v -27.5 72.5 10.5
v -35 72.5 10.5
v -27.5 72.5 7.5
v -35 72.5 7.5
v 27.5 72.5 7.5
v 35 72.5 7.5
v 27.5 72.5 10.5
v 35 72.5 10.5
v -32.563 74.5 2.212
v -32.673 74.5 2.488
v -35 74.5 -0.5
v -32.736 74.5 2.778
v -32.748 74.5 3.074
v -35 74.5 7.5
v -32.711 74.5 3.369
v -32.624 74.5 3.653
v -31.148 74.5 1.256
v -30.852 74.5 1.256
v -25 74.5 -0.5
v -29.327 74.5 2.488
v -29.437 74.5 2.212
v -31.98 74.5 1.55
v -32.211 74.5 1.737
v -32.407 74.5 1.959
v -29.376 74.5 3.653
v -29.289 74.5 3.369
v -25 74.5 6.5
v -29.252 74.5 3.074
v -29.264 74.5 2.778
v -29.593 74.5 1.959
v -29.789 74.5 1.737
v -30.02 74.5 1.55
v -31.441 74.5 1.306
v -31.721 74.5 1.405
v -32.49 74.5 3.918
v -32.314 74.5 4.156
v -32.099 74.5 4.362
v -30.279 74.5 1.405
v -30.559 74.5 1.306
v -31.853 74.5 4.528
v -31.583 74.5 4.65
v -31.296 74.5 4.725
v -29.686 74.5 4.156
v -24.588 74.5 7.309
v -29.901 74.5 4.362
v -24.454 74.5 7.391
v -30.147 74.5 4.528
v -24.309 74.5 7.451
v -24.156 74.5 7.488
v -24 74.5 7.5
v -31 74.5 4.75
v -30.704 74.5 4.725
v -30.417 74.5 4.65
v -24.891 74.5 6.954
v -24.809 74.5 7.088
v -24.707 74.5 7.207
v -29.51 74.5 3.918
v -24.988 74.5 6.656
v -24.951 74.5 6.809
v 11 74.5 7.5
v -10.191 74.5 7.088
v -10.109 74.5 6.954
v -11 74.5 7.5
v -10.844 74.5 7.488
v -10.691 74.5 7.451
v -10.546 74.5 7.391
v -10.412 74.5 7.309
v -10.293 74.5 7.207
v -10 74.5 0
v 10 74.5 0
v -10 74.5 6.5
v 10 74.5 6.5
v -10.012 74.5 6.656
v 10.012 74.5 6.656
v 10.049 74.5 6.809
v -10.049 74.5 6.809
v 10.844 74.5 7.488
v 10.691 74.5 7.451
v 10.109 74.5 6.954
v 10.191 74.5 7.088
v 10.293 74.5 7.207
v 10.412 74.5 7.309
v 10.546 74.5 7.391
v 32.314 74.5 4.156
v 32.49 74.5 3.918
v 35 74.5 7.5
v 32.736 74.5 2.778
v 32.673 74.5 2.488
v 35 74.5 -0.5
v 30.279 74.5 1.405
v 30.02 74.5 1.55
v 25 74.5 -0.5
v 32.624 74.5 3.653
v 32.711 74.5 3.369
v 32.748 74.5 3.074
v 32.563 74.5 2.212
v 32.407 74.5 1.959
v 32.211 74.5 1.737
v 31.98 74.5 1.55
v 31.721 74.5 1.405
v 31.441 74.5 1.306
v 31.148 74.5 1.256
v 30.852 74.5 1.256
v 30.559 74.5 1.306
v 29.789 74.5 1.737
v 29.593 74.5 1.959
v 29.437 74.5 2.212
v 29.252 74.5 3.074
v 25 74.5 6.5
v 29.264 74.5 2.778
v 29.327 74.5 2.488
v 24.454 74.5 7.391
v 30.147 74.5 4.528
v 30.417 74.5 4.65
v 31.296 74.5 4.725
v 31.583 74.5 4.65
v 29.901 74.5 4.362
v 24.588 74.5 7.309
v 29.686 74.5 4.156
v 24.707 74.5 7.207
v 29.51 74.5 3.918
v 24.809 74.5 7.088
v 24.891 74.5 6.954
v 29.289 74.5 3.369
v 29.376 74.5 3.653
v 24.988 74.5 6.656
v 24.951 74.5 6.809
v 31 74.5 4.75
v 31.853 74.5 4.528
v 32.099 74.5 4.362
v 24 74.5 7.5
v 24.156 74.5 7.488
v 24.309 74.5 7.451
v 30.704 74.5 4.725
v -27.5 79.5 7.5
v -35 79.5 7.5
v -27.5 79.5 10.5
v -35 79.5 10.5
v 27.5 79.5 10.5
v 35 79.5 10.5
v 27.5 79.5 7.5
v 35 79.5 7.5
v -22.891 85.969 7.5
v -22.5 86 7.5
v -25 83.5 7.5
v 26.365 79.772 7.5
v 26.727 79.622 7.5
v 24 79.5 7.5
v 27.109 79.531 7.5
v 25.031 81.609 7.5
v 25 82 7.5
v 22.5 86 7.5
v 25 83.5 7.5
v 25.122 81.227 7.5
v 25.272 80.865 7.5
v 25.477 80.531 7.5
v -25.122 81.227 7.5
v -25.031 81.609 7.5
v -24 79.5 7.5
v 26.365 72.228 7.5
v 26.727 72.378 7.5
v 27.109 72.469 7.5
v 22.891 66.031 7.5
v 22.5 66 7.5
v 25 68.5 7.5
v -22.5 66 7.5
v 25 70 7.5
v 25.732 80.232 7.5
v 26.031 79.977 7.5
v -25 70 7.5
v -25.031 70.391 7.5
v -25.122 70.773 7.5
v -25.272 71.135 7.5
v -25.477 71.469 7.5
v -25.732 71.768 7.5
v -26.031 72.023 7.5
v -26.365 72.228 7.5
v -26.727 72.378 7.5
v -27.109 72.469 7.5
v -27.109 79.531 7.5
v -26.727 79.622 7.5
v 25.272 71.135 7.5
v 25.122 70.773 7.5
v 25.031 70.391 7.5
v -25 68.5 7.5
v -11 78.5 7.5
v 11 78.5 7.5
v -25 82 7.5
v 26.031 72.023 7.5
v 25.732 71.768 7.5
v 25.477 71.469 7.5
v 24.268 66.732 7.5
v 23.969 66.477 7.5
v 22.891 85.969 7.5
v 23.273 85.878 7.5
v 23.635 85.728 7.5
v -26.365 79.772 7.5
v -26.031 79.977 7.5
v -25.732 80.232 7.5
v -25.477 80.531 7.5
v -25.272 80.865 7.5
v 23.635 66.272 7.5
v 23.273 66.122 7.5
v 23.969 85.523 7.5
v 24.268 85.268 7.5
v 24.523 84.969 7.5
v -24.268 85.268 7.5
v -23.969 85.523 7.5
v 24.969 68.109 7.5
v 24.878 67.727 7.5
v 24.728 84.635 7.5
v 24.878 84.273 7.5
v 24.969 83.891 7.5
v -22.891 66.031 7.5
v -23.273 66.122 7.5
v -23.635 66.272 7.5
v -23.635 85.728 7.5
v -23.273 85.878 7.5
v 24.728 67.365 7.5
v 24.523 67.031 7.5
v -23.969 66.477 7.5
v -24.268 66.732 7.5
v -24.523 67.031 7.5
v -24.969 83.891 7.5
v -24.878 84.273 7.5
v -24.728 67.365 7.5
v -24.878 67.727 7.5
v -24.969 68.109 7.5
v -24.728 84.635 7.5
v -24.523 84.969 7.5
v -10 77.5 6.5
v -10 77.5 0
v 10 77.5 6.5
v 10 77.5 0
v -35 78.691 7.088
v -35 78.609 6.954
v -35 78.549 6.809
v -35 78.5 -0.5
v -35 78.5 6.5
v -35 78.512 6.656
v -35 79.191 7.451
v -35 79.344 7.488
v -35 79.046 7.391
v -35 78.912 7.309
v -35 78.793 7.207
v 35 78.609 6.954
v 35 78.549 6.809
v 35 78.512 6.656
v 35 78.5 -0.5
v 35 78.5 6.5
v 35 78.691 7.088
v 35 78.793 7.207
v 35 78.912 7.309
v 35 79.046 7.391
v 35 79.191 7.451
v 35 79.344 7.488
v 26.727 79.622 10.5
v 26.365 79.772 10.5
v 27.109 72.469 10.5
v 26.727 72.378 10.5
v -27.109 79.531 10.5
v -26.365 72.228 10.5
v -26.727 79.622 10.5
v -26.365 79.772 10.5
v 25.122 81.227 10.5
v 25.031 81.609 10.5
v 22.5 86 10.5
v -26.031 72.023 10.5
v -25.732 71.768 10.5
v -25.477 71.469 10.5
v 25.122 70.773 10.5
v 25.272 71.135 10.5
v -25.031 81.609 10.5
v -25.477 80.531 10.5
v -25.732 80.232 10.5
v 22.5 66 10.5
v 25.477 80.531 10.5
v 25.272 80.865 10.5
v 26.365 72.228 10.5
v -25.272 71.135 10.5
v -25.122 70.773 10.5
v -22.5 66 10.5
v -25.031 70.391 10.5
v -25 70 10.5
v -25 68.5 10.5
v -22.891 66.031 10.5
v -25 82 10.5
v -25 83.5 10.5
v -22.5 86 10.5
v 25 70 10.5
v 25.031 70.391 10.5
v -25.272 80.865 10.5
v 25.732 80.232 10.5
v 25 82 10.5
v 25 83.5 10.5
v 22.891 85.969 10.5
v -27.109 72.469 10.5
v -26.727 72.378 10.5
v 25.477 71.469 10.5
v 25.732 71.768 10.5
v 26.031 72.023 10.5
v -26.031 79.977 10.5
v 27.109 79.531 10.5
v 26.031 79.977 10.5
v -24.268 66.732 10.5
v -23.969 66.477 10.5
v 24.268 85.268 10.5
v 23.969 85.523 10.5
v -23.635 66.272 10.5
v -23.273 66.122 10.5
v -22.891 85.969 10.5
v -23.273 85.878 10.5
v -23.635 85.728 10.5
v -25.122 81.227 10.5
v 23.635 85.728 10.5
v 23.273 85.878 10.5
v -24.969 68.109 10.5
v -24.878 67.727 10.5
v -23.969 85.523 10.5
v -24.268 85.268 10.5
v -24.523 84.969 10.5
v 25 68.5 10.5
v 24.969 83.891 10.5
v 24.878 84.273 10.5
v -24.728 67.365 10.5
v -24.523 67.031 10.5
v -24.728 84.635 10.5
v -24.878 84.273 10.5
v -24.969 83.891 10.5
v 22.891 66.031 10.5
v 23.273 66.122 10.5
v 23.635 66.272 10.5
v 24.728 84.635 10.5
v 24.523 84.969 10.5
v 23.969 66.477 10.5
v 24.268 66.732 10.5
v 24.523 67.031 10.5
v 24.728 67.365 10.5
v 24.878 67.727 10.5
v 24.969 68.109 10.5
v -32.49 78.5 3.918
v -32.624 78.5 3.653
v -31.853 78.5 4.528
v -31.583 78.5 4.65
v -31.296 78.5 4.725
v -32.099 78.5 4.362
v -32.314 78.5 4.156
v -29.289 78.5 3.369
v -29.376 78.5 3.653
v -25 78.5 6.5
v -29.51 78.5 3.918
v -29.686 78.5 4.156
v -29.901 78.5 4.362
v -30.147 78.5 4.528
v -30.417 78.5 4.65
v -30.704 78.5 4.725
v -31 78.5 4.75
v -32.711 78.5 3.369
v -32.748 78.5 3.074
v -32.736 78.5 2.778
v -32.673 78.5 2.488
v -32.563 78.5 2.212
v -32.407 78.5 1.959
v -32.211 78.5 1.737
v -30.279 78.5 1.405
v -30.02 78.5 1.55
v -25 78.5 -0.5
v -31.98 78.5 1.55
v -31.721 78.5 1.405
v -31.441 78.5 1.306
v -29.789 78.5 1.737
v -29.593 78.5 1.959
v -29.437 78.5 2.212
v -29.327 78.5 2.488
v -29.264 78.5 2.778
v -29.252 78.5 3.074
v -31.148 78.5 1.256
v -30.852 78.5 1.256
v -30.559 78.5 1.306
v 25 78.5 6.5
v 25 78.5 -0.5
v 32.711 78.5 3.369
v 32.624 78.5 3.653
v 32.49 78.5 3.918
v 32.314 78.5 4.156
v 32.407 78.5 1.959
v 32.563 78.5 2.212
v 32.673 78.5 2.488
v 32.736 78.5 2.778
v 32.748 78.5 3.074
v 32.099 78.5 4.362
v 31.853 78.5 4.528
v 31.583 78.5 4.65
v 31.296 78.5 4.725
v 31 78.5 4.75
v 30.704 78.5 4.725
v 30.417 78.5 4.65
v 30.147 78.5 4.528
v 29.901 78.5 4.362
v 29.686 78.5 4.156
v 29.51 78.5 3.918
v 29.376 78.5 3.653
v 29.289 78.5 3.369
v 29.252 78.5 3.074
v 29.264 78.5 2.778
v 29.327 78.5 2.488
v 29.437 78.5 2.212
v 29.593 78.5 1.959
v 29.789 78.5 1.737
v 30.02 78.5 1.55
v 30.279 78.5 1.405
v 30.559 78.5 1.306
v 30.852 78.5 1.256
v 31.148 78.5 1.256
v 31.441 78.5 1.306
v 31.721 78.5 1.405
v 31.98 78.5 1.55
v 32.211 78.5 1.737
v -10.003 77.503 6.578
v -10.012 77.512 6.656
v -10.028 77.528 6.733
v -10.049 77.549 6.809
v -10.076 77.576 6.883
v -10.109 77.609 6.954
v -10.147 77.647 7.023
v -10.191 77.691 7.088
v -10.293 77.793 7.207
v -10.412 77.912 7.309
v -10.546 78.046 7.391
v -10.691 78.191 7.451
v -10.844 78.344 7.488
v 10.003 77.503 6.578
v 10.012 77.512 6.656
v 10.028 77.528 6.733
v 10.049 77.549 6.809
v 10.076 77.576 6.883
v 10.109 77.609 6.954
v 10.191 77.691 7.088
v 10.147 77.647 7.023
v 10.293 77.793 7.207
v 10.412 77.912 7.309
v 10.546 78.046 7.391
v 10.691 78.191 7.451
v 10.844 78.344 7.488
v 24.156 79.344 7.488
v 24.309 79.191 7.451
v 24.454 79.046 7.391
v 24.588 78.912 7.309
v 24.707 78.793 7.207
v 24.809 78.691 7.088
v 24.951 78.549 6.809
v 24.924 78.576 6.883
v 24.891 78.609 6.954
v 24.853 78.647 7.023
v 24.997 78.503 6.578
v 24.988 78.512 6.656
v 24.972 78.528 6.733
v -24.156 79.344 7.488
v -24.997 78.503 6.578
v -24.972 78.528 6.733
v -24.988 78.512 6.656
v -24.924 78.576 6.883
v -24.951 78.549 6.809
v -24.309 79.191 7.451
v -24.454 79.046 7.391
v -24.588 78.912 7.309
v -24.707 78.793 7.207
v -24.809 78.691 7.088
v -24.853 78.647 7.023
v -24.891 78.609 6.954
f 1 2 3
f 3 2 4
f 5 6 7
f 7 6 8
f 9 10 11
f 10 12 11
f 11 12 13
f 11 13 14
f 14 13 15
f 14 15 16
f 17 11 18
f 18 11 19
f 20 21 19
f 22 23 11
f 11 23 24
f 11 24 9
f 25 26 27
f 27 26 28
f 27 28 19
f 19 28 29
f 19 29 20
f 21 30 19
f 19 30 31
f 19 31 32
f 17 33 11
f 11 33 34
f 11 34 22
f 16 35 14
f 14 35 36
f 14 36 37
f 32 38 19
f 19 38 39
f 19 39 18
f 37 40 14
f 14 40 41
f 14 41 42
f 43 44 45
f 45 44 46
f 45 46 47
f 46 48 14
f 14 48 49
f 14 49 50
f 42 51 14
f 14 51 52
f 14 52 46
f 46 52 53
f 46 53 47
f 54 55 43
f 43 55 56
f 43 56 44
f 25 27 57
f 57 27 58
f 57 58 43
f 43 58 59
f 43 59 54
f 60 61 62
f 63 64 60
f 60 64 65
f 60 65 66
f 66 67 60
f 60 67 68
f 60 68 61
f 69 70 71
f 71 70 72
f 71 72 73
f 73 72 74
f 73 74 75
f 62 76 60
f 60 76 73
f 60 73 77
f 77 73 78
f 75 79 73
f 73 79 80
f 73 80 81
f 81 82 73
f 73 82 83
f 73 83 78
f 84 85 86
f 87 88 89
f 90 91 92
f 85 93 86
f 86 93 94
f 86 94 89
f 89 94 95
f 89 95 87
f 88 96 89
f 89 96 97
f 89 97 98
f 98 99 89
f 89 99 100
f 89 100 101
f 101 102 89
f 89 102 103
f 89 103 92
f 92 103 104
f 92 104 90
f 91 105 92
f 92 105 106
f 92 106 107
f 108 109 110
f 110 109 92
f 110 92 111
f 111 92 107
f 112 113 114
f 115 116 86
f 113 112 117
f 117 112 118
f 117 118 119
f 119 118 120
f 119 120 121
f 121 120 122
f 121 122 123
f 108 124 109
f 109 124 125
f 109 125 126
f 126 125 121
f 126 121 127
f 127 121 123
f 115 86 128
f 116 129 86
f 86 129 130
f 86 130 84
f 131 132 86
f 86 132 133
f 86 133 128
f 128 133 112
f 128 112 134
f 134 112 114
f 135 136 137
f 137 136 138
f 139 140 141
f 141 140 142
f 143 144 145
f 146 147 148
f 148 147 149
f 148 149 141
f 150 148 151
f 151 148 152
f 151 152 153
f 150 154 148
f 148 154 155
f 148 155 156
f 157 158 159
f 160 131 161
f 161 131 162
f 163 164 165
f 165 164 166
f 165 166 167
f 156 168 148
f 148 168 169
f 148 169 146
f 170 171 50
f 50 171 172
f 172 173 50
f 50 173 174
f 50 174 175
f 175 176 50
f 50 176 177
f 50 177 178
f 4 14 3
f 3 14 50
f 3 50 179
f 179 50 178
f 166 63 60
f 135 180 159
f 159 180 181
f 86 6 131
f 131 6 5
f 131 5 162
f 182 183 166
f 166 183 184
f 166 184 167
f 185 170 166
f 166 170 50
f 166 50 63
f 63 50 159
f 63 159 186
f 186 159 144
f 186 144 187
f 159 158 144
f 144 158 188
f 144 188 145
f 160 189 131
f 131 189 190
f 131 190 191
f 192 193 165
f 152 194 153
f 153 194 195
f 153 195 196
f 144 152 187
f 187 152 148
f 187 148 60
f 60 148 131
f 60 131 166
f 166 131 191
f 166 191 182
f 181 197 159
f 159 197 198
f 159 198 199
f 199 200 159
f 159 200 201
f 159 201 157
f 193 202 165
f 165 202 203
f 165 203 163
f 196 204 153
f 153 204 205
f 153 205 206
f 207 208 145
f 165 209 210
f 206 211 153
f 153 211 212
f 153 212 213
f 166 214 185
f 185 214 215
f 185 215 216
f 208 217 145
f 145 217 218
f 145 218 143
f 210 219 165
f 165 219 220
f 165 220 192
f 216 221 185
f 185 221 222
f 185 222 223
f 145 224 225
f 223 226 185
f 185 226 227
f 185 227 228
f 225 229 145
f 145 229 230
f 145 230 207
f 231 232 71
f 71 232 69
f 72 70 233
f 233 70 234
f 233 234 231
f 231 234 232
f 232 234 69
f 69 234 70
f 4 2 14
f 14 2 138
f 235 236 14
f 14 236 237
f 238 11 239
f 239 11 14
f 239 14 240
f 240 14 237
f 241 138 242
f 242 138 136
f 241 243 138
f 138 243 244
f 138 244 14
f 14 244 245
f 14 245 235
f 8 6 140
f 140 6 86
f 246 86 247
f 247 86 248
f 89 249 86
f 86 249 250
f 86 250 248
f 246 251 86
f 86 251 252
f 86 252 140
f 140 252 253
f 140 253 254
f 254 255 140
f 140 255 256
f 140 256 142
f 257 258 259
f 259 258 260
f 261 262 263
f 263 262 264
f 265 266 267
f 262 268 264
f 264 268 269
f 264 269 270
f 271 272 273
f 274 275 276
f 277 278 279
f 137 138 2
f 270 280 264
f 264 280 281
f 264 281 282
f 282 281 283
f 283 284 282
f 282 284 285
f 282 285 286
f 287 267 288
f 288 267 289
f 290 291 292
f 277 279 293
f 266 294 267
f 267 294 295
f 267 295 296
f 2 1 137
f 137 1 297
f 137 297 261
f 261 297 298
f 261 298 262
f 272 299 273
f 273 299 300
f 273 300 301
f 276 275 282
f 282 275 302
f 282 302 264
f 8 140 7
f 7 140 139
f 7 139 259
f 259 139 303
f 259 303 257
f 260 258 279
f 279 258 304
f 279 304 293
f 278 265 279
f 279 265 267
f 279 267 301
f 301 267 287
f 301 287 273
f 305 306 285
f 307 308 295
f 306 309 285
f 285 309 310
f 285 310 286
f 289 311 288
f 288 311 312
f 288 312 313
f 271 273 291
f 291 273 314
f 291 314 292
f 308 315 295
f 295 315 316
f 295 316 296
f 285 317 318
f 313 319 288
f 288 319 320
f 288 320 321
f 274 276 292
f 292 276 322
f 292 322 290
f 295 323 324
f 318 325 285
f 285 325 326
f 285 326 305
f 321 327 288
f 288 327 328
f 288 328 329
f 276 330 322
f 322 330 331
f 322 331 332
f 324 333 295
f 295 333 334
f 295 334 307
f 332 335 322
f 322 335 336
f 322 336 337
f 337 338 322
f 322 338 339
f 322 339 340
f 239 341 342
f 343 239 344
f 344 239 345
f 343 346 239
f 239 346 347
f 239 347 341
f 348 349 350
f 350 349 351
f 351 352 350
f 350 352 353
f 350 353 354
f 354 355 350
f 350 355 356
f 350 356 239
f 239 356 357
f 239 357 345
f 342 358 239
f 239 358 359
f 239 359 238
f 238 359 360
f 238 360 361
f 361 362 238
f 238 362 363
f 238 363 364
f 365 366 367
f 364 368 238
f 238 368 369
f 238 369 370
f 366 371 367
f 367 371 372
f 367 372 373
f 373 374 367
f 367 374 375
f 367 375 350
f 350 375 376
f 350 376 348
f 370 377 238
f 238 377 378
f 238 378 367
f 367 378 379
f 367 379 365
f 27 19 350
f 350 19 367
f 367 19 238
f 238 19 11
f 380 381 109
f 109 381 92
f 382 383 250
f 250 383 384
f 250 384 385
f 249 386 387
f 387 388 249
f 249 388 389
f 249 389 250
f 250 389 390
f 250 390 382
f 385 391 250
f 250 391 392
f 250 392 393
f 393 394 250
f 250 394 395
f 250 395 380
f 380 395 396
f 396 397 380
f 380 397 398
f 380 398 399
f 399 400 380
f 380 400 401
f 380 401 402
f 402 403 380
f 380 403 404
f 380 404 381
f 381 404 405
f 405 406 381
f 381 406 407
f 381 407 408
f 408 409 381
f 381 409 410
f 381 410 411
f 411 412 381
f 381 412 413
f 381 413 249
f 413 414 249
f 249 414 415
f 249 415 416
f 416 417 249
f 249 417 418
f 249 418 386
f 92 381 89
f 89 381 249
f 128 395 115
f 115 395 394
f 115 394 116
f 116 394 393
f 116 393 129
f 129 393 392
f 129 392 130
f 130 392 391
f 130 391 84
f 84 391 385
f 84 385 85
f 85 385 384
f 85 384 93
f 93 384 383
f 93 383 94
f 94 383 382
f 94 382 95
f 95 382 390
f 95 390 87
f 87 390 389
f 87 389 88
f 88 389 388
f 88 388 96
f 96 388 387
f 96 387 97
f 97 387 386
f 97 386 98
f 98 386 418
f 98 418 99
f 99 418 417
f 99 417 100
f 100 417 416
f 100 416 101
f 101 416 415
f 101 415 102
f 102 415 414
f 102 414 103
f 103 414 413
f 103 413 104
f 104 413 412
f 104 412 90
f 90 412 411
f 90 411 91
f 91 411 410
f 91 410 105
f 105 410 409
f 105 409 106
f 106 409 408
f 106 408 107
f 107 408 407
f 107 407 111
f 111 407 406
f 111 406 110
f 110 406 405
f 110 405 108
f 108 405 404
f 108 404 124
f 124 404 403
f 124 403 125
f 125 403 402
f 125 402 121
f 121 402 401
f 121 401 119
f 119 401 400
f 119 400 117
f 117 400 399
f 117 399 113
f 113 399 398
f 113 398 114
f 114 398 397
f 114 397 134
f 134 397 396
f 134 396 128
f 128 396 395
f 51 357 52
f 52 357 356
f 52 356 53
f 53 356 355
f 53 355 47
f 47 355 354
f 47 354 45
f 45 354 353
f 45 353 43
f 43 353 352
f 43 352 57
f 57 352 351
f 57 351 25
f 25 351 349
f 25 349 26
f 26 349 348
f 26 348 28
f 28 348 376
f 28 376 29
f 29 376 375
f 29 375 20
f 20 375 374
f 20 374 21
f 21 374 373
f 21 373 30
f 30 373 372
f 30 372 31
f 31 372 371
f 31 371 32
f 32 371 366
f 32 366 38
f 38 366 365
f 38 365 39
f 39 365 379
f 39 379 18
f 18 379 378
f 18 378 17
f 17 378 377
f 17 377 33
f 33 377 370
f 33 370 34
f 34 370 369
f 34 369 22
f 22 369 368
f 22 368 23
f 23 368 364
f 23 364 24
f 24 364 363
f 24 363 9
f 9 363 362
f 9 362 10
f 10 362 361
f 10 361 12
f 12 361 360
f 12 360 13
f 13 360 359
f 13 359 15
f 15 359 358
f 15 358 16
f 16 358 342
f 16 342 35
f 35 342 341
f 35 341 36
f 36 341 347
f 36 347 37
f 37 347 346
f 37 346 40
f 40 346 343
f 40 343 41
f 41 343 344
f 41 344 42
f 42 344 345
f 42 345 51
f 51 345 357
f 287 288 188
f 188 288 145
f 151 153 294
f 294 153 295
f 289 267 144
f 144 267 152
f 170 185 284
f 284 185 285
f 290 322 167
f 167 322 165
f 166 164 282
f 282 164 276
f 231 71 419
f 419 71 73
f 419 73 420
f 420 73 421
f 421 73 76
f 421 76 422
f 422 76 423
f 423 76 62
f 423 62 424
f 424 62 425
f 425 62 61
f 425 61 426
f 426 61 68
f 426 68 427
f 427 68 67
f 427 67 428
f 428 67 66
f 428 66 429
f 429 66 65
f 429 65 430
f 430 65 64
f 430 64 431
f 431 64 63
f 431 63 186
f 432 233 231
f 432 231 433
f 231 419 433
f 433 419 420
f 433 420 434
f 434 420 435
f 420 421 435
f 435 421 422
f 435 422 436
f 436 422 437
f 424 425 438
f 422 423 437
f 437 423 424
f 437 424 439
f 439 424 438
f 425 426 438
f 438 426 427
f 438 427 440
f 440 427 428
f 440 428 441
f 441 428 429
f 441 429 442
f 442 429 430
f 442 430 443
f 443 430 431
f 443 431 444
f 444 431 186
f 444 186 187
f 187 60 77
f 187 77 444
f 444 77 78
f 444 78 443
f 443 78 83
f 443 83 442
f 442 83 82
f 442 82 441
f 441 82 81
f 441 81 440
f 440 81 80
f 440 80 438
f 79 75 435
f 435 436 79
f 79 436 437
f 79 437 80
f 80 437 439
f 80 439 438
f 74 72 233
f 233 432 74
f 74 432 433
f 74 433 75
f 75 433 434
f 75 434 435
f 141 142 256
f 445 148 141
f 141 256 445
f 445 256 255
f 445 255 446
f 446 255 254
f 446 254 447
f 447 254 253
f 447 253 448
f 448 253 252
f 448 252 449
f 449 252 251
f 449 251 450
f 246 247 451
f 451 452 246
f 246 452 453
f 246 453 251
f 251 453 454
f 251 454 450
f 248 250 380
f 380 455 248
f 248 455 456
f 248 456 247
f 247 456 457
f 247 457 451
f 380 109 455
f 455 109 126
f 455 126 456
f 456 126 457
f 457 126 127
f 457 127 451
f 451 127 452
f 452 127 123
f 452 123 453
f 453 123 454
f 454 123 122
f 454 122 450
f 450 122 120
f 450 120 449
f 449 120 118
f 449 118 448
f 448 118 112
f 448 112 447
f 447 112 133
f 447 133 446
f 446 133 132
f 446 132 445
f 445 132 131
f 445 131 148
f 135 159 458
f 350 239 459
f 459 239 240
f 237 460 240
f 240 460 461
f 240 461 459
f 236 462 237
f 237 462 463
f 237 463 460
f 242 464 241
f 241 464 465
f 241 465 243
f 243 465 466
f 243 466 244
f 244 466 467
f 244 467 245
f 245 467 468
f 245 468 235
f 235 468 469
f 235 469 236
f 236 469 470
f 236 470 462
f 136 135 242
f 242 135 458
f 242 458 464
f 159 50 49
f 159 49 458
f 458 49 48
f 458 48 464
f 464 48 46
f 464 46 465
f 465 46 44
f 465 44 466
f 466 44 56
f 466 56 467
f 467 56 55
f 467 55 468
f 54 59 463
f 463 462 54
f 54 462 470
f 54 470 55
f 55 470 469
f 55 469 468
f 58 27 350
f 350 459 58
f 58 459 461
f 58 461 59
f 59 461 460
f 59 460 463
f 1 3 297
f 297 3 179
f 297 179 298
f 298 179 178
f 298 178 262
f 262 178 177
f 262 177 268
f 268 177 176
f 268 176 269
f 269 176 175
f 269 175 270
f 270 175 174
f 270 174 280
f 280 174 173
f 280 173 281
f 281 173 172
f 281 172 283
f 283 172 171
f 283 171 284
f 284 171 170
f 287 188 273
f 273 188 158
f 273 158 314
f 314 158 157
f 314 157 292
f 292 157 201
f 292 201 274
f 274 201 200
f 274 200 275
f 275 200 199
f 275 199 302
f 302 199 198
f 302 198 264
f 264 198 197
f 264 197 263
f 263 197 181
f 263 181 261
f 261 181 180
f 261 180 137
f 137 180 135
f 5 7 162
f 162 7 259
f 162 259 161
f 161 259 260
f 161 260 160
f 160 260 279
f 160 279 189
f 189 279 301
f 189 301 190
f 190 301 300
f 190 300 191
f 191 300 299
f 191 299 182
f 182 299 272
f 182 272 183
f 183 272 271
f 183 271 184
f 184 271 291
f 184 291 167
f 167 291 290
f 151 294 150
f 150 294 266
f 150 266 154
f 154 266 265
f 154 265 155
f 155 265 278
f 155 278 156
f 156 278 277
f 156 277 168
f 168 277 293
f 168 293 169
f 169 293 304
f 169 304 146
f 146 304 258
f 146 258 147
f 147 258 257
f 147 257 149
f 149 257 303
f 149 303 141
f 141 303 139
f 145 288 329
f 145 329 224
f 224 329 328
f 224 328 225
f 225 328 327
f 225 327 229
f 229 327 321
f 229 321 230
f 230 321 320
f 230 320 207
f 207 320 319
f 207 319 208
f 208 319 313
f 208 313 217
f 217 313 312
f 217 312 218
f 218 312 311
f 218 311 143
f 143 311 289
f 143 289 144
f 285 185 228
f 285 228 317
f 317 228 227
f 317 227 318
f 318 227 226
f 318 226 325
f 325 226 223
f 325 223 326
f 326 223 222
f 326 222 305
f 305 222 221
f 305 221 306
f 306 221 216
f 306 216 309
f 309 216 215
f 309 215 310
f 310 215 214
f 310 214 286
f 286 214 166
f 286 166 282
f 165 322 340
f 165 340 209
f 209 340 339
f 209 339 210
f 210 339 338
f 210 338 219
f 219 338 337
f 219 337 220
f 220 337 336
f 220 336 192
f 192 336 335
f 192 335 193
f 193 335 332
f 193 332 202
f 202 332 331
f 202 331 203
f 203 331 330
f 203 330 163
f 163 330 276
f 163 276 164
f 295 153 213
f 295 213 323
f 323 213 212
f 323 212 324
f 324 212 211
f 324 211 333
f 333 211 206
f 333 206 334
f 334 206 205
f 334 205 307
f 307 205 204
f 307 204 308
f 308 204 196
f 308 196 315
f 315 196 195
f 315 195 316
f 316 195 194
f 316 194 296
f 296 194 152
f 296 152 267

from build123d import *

# Parameters (mm, degrees)
SKETCH1_W           = 20
SKETCH1_H           = 155
BOSS_EXTRUDE1_DEPTH = 4
SKETCH2_W           = 20
SKETCH2_H           = 4
BOSS_EXTRUDE3_DEPTH = 50
RIB2_REACH          = 96.986
SKETCH7_WALL_W      = 290.205463948
SKETCH7_WALL_H      = 4
SKETCH8_W           = 20
SKETCH8_H           = 3
BOSS_EXTRUDE4_DEPTH = 3.5
SKETCH9_W           = 70
SKETCH9_H           = 5
BOSS_EXTRUDE6_DEPTH = 3
SKETCH10_W          = 10
SKETCH10_H          = 4
BOSS_EXTRUDE7_DEPTH = 8
SKETCH12_R          = 1.75
CUT_EXTRUDE1_DEPTH  = 10
SKETCH13_W          = 111.319070758
SKETCH13_H          = 99.743885808
CUT_EXTRUDE2_DEPTH  = 152
SKETCH14_W          = 50
SKETCH14_H          = 3
BOSS_EXTRUDE8_DEPTH = 6.5
FILLET1_R           = 1
FILLET2_R           = 2.5


with BuildPart() as part:
    # Sketch1 → Boss-Extrude1 (new body)
    with BuildSketch(Plane.XY):
        Rectangle(SKETCH1_W, SKETCH1_H)
    extrude(amount=BOSS_EXTRUDE1_DEPTH)

    # Sketch2 → Boss-Extrude3 (add)
    with BuildSketch(Plane.XY.offset(4)):
        with Locations((0, -75.5)):
            Rectangle(SKETCH2_W, SKETCH2_H)
    extrude(amount=BOSS_EXTRUDE3_DEPTH)

    # Sketch7 wall → Rib2 (add, up to next)
    with BuildSketch(Plane(origin=(0, -26, 16.5), x_dir=(0, 0.967074537263, -0.25449329928), z_dir=(0, 0.25449329928, 0.967074537263)), mode=Mode.PRIVATE) as rib2_sk1:
        Rectangle(SKETCH7_WALL_W, SKETCH7_WALL_H)
    rib2_tool1 = extrude(rib2_sk1.sketch, amount=-RIB2_REACH, mode=Mode.PRIVATE) - part.part
    add(rib2_tool1.solids().sort_by_distance((0, -26, 16.5))[0])

    # Sketch8 → Boss-Extrude4 (add)
    with BuildSketch(Plane.XY.offset(4)):
        with Locations((0, 76)):
            Rectangle(SKETCH8_W, SKETCH8_H)
    extrude(amount=BOSS_EXTRUDE4_DEPTH)

    # Sketch9 → Boss-Extrude6 (add)
    with BuildSketch(Plane.XY.offset(7.5)):
        with Locations((0, 77)):
            Rectangle(SKETCH9_W, SKETCH9_H)
    boss_extrude6 = extrude(amount=BOSS_EXTRUDE6_DEPTH)

    # Sketch10 → Boss-Extrude7 (add)
    with BuildSketch(Plane(origin=(0, 0, 7.5), x_dir=(-1, 0, 0), z_dir=(0, 0, -1))):
        with Locations((30, 76.5)):
            Rectangle(SKETCH10_W, SKETCH10_H)
        with Locations((-30, 76.5)):
            Rectangle(SKETCH10_W, SKETCH10_H)
    extrude(amount=BOSS_EXTRUDE7_DEPTH)

    # Sketch12 → Cut-Extrude1 (cut)
    with BuildSketch(Plane(origin=(0, 78.5, 0), x_dir=(1, 0, 0), z_dir=(0, 1, 0))):
        with Locations(Location((-31, -3, 0), (0, 0, 270))):
            Circle(SKETCH12_R)
        with Locations(Location((31, -3, 0), (0, 0, 270))):
            Circle(SKETCH12_R)
    extrude(amount=-CUT_EXTRUDE1_DEPTH, mode=Mode.SUBTRACT)

    # Sketch13 → Cut-Extrude2 (cut)
    with BuildSketch(Plane.XZ.offset(77.5)):
        with Locations((2.652852139, 20.474703111)):
            Rectangle(SKETCH13_W, SKETCH13_H)
    extrude(amount=-CUT_EXTRUDE2_DEPTH, mode=Mode.SUBTRACT)

    # Sketch14 → Boss-Extrude8 (add)
    with BuildSketch(Plane(origin=(0, 79.5, 0), x_dir=(1, 0, 0), z_dir=(0, 1, 0))):
        with Locations((0, -9)):
            Rectangle(SKETCH14_W, SKETCH14_H)
    boss_extrude8 = extrude(amount=BOSS_EXTRUDE8_DEPTH)

    # Mirror1: Boss-Extrude6, Boss-Extrude8 across plane
    add(boss_extrude6.mirror(Plane(origin=(0, 76, 0), x_dir=(0, 0, 1), z_dir=(0, -1, 0))))
    add(boss_extrude8.mirror(Plane(origin=(0, 76, 0), x_dir=(0, 0, 1), z_dir=(0, -1, 0))))

    # Fillet1
    fillet1_edges = [part.edges().sort_by_distance(p)[0] for p in [
        (10, 76, 7.5),
        (0, 77.5, 7.5),
        (-10, 76, 7.5),
        (-30, 78.5, 7.5),
        (-25, 76.5, 7.5),
        (25, 76.5, 7.5),
        (30, 78.5, 7.5),
    ]]
    fillet(fillet1_edges, radius=FILLET1_R - 0.0001)  # a hair under: the kernel refuses the full size

    # Fillet2
    fillet2_edges = [part.edges().sort_by_distance(p)[0] for p in [
        (-25, 79.5, 9),
        (25, 79.5, 9),
        (-25, 86, 9),
        (25, 86, 9),
        (-25, 66, 9),
        (25, 66, 9),
        (-25, 72.5, 9),
        (25, 72.5, 9),
    ]]
    fillet(fillet2_edges, radius=FILLET2_R)


solid = part.part
